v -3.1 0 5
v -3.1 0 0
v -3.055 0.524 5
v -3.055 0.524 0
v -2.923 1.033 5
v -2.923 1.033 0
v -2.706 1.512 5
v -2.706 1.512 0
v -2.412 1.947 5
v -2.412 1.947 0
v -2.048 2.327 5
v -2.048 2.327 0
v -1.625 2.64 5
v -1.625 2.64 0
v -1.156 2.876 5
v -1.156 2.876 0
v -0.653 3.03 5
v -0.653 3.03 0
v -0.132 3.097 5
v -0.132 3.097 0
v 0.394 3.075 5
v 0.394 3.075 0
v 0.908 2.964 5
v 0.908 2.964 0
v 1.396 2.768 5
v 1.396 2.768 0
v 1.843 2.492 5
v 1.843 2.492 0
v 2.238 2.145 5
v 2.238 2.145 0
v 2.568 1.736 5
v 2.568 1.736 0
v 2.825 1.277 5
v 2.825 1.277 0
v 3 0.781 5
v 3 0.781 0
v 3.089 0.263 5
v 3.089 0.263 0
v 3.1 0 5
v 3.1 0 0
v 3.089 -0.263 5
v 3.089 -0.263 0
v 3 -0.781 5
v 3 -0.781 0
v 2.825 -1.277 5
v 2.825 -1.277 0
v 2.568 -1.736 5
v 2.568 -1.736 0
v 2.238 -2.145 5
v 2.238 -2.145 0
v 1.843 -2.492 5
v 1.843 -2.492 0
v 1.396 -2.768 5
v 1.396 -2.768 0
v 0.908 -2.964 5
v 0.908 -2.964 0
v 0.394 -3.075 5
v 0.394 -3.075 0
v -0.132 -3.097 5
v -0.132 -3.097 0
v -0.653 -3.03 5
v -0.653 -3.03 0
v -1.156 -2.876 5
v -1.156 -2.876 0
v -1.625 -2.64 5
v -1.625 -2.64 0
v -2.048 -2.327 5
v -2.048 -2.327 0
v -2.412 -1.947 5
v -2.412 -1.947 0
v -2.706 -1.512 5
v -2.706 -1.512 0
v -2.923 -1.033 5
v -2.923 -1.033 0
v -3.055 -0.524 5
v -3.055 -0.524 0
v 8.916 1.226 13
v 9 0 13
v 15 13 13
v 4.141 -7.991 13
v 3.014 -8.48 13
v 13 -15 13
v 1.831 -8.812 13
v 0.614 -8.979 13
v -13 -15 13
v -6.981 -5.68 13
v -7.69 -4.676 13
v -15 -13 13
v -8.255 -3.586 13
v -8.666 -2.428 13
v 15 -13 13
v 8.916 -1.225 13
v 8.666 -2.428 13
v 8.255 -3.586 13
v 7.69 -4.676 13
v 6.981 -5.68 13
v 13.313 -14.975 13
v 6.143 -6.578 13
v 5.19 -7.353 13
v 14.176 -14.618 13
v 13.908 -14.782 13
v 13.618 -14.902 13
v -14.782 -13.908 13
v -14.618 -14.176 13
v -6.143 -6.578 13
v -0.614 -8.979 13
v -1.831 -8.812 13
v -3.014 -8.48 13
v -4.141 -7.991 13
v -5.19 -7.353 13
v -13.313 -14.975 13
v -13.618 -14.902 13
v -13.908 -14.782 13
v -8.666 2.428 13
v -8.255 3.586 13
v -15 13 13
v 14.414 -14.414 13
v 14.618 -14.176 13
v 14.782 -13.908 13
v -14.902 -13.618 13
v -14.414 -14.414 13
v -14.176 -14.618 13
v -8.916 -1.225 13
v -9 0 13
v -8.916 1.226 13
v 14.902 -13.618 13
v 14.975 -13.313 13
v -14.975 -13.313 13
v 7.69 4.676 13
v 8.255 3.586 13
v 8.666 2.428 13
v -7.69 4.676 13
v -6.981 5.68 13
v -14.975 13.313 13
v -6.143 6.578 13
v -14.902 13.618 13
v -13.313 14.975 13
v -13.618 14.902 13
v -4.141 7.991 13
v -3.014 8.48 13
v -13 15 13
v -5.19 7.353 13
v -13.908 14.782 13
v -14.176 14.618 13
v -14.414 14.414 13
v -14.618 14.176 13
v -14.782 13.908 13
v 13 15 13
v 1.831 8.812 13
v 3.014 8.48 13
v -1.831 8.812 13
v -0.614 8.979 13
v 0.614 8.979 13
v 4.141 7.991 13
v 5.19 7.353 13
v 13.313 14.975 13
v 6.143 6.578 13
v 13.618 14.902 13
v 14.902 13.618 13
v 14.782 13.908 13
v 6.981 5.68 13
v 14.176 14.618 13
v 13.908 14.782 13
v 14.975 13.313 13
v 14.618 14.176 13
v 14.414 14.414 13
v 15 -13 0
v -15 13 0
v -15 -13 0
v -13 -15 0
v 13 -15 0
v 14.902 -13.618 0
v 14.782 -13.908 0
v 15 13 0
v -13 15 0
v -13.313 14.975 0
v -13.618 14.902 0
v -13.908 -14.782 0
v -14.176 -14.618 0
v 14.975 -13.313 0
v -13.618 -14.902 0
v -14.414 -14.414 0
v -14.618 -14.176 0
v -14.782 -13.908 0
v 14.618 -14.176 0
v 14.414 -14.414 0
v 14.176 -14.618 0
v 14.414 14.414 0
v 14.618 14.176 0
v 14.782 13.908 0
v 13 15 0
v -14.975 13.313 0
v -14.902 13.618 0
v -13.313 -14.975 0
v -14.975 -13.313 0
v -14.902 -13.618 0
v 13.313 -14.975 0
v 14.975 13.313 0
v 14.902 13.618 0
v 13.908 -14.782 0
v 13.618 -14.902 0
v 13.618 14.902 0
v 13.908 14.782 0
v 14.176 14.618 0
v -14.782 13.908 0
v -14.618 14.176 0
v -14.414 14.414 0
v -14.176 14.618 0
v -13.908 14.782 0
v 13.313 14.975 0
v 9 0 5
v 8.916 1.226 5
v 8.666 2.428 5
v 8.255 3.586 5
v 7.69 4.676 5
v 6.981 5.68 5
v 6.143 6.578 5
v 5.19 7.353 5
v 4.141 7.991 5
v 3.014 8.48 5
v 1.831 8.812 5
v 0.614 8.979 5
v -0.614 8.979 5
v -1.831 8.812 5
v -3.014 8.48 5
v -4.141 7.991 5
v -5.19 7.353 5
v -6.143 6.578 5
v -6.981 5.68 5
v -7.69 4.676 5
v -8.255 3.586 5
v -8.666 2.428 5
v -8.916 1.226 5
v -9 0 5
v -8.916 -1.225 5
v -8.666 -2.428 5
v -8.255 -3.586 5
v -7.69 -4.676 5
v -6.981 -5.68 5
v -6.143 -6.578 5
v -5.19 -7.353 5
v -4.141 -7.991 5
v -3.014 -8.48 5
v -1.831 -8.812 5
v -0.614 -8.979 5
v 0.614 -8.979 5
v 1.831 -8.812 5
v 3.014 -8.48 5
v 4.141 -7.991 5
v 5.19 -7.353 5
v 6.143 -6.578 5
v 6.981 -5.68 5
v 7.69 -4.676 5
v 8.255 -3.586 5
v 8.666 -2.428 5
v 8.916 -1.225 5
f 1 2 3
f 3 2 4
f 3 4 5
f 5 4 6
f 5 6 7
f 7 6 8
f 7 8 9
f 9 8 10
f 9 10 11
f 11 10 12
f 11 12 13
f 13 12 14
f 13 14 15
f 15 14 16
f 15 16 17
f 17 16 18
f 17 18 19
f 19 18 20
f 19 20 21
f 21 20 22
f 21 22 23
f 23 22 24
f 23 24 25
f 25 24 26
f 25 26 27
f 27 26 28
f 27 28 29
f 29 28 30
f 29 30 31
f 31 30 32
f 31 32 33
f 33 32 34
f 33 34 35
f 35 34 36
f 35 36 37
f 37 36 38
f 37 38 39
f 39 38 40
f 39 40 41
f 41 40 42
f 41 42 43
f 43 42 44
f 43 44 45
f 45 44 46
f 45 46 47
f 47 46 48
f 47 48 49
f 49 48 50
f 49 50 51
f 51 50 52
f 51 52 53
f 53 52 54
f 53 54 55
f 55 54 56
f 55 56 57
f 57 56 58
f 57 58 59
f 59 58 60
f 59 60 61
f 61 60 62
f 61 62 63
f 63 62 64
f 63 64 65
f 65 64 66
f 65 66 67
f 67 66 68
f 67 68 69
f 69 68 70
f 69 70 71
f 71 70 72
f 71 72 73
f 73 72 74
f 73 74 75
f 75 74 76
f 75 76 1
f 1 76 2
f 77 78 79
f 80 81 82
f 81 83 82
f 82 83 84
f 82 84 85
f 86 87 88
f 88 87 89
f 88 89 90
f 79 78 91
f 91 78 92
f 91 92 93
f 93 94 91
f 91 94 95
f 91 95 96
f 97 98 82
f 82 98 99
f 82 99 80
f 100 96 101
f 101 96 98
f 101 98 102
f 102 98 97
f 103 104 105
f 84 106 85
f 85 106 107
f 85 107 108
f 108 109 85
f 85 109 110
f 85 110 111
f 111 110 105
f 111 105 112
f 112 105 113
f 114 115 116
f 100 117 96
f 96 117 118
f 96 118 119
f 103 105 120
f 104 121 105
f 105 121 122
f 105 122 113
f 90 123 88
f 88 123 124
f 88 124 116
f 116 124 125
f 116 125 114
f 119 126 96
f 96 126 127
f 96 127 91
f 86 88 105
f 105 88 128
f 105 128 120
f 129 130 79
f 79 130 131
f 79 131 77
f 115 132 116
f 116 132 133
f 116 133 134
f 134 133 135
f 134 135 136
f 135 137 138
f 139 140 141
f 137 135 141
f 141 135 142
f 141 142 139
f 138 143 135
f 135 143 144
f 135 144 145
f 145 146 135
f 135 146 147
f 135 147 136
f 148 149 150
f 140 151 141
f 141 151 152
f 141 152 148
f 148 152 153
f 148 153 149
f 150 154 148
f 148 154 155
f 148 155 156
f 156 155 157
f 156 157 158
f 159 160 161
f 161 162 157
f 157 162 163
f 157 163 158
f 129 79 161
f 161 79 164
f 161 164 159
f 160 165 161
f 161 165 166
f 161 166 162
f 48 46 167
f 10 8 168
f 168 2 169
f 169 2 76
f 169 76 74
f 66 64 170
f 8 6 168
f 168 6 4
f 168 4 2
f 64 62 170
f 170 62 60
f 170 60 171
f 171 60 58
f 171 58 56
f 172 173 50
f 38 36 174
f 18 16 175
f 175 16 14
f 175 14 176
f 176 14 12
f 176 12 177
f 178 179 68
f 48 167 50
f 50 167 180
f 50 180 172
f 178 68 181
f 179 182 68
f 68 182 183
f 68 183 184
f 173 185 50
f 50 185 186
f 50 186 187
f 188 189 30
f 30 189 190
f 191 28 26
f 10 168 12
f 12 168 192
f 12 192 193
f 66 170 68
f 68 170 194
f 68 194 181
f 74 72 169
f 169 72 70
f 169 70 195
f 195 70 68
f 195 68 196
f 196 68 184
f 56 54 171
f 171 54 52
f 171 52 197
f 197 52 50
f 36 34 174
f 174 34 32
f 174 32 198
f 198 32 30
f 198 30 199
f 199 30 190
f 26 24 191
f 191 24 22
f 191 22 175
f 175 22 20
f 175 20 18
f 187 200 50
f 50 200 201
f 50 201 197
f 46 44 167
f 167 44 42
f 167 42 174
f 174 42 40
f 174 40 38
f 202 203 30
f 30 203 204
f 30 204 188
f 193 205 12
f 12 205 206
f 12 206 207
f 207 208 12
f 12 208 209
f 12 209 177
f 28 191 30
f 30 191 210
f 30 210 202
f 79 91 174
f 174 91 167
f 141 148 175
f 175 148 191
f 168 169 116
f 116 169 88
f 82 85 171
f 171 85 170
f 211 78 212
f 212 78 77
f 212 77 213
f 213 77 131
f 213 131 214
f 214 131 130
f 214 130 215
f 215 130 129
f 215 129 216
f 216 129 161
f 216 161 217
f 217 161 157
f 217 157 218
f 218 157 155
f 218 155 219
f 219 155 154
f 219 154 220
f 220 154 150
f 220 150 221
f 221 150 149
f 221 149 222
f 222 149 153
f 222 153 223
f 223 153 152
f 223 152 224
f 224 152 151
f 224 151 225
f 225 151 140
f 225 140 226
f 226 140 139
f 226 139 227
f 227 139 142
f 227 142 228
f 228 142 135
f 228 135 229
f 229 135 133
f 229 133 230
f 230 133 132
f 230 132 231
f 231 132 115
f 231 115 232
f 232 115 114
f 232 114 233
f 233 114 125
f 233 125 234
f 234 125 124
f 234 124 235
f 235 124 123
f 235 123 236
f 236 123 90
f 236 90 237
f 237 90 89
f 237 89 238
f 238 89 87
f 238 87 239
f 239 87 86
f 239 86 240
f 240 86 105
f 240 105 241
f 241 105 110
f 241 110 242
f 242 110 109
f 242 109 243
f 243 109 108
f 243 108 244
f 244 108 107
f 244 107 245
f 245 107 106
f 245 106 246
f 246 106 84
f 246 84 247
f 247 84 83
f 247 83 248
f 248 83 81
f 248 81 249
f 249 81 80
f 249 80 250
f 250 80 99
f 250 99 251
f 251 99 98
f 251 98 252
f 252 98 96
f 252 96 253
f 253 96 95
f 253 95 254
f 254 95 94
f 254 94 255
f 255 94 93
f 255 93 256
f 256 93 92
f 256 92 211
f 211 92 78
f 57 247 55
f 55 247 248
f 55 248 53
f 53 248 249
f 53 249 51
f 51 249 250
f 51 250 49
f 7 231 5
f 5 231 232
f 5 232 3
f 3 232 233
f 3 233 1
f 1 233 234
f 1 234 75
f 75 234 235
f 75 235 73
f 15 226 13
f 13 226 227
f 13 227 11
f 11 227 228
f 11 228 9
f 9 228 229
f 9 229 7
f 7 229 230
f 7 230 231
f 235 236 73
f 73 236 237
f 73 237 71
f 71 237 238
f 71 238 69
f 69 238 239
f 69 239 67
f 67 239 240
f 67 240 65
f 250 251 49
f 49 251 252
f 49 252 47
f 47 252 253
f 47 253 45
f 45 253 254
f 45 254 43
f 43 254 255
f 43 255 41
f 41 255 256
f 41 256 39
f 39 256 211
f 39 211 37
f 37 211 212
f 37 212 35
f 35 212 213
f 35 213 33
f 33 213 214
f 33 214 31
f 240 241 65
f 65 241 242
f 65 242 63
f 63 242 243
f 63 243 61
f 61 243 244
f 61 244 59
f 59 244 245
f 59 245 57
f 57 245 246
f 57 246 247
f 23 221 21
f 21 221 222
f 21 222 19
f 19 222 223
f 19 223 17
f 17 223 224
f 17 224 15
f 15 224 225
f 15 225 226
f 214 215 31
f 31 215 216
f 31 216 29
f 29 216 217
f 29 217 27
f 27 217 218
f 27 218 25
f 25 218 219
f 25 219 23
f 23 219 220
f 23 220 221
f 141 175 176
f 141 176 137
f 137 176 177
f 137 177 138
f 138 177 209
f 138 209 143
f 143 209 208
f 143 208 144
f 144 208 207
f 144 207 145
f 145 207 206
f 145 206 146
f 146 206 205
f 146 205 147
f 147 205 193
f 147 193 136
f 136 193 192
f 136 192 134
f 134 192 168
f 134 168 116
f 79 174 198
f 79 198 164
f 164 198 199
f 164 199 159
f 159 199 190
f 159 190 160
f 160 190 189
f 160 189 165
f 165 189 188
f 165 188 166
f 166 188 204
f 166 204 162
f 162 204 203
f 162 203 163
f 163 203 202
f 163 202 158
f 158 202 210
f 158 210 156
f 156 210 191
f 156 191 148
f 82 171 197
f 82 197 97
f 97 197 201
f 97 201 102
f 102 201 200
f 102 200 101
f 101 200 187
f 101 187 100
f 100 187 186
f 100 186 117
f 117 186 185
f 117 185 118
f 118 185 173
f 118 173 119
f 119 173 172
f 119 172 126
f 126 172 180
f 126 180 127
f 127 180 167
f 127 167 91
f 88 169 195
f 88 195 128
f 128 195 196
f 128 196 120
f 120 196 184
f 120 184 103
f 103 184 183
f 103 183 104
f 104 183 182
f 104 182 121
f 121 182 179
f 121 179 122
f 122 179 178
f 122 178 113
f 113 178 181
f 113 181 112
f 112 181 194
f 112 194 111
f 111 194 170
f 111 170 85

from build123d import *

# Parameters (mm, degrees)
SKETCH1_W           = 30
SKETCH1_H           = 30
SKETCH1_R           = 3.1
BOSS_EXTRUDE1_DEPTH = 13
SKETCH2_R           = 9
CUT_EXTRUDE1_DEPTH  = 8
FILLET1_R           = 2


with BuildPart() as part:
    # Sketch1 → Boss-Extrude1 (new body)
    with BuildSketch(Plane.XY):
        Rectangle(SKETCH1_W, SKETCH1_H)
        Circle(SKETCH1_R, mode=Mode.SUBTRACT)
    extrude(amount=BOSS_EXTRUDE1_DEPTH)

    # Sketch2 → Cut-Extrude1 (cut)
    with BuildSketch(Plane.XY.offset(13)):
        Circle(SKETCH2_R)
    extrude(amount=-CUT_EXTRUDE1_DEPTH, mode=Mode.SUBTRACT)

    # Fillet1
    fillet1_edges = [part.edges().sort_by_distance(p)[0] for p in [
        (15, -15, 6.5),
        (-15, -15, 6.5),
        (-15, 15, 6.5),
        (15, 15, 6.5),
    ]]
    fillet(fillet1_edges, radius=FILLET1_R)


solid = part.part
